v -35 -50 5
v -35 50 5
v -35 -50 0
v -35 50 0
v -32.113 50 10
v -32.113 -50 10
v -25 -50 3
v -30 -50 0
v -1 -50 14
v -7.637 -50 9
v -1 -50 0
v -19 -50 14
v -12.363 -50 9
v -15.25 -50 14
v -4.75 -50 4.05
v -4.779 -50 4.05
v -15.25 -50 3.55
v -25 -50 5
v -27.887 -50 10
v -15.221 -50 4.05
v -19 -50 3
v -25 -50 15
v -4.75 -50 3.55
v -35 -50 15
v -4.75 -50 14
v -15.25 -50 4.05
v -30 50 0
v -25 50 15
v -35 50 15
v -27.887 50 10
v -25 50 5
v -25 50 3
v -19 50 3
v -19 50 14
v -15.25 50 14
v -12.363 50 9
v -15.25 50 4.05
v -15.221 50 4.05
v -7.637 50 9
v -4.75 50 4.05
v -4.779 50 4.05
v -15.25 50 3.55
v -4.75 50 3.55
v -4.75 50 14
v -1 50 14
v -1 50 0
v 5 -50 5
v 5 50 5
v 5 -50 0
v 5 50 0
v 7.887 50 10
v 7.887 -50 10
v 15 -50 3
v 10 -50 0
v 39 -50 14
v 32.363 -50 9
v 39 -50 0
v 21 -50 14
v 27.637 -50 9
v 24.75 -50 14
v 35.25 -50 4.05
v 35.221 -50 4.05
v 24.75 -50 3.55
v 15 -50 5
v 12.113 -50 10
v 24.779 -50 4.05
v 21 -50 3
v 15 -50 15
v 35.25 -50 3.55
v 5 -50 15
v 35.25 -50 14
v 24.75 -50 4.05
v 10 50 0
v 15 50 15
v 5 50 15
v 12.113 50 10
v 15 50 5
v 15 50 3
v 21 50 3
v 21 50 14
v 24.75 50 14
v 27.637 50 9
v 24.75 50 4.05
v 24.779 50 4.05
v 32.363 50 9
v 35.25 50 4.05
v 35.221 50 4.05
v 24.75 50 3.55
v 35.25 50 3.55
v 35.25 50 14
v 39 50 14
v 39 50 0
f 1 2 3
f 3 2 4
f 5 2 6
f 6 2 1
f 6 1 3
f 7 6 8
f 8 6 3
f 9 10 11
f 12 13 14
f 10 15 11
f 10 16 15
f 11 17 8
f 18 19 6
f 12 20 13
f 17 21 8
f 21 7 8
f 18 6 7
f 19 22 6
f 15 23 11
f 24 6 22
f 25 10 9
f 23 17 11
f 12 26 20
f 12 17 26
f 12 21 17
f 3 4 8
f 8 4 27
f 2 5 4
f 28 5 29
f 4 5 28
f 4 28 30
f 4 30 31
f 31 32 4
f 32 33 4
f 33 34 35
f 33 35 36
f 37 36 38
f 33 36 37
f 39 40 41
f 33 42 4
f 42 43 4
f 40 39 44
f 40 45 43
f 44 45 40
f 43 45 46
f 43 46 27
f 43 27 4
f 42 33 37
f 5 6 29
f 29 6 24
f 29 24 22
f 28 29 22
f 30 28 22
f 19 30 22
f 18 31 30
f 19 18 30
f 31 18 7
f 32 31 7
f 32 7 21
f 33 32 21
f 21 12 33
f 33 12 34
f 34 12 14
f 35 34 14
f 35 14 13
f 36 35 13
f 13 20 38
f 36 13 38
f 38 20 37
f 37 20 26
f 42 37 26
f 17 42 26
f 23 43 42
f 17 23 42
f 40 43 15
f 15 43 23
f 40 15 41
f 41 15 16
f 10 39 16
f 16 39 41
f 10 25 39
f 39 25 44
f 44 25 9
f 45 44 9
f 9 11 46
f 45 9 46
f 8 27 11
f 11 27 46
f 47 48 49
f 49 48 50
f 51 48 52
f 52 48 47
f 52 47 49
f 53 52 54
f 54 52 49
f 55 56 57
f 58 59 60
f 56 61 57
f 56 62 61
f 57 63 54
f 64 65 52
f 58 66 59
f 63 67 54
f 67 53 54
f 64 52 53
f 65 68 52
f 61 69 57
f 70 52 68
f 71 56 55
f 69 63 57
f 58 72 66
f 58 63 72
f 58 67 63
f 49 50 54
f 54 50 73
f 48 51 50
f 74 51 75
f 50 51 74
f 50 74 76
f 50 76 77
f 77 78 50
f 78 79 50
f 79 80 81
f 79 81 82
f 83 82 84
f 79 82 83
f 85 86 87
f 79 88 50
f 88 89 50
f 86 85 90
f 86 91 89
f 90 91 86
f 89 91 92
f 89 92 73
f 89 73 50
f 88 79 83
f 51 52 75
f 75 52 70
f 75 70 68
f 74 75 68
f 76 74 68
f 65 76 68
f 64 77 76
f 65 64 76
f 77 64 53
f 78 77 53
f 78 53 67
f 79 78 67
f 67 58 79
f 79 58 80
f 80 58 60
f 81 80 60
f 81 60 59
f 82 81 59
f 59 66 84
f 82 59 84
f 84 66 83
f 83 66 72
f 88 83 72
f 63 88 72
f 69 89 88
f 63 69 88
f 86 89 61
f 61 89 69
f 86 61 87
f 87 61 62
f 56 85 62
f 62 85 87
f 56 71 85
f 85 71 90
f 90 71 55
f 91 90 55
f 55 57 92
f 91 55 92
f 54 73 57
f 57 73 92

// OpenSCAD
use <GDMUtils.scad>



module hourglass_rail(w=10, l=100, h=15, rail=10, ang=30)
{
	difference() {
		translate([0, 0, (h-rail)/2])
			cube(size=[w, l, h], center=true);
		grid_of(xa=[-w/2, w/2]) {
			scale([tan(ang),1,1]) {
				yrot(45) cube(size=[rail/sqrt(2), l+1, rail/sqrt(2)], center=true);
			}
		}
	}
}



module hourglass_slider(w=10, l=100, h=20, rail=10, ang=30, wall=4, slop=0.25)
{
	difference() {
		translate([0,0,-wall/2])
			cube(size=[w+2*wall, l, rail+wall], center=true);
		hourglass_rail(w=w+2*slop, l=l+2, h=h, rail=rail, ang=ang);
		translate([0, 0, -(rail/2+slop-0.05)])
			cube(size=[w+2*slop, l+2, slop*2], center=true);
	}
}



module test_slider_parts()
{
	grid_of(xa=[-20, 20]) {
		translate([0, 0, 1.5]) {
			cube(size=[20, 100, 3], center=true);
		}
		translate([-10, 0, 10]) {
			yrot(180) hourglass_rail();
		}
		translate([10, 0, 5+4]) {
			hourglass_slider();
		}
	}
}
test_slider_parts();



// vim: noexpandtab tabstop=4 shiftwidth=4 softtabstop=4 nowrap
